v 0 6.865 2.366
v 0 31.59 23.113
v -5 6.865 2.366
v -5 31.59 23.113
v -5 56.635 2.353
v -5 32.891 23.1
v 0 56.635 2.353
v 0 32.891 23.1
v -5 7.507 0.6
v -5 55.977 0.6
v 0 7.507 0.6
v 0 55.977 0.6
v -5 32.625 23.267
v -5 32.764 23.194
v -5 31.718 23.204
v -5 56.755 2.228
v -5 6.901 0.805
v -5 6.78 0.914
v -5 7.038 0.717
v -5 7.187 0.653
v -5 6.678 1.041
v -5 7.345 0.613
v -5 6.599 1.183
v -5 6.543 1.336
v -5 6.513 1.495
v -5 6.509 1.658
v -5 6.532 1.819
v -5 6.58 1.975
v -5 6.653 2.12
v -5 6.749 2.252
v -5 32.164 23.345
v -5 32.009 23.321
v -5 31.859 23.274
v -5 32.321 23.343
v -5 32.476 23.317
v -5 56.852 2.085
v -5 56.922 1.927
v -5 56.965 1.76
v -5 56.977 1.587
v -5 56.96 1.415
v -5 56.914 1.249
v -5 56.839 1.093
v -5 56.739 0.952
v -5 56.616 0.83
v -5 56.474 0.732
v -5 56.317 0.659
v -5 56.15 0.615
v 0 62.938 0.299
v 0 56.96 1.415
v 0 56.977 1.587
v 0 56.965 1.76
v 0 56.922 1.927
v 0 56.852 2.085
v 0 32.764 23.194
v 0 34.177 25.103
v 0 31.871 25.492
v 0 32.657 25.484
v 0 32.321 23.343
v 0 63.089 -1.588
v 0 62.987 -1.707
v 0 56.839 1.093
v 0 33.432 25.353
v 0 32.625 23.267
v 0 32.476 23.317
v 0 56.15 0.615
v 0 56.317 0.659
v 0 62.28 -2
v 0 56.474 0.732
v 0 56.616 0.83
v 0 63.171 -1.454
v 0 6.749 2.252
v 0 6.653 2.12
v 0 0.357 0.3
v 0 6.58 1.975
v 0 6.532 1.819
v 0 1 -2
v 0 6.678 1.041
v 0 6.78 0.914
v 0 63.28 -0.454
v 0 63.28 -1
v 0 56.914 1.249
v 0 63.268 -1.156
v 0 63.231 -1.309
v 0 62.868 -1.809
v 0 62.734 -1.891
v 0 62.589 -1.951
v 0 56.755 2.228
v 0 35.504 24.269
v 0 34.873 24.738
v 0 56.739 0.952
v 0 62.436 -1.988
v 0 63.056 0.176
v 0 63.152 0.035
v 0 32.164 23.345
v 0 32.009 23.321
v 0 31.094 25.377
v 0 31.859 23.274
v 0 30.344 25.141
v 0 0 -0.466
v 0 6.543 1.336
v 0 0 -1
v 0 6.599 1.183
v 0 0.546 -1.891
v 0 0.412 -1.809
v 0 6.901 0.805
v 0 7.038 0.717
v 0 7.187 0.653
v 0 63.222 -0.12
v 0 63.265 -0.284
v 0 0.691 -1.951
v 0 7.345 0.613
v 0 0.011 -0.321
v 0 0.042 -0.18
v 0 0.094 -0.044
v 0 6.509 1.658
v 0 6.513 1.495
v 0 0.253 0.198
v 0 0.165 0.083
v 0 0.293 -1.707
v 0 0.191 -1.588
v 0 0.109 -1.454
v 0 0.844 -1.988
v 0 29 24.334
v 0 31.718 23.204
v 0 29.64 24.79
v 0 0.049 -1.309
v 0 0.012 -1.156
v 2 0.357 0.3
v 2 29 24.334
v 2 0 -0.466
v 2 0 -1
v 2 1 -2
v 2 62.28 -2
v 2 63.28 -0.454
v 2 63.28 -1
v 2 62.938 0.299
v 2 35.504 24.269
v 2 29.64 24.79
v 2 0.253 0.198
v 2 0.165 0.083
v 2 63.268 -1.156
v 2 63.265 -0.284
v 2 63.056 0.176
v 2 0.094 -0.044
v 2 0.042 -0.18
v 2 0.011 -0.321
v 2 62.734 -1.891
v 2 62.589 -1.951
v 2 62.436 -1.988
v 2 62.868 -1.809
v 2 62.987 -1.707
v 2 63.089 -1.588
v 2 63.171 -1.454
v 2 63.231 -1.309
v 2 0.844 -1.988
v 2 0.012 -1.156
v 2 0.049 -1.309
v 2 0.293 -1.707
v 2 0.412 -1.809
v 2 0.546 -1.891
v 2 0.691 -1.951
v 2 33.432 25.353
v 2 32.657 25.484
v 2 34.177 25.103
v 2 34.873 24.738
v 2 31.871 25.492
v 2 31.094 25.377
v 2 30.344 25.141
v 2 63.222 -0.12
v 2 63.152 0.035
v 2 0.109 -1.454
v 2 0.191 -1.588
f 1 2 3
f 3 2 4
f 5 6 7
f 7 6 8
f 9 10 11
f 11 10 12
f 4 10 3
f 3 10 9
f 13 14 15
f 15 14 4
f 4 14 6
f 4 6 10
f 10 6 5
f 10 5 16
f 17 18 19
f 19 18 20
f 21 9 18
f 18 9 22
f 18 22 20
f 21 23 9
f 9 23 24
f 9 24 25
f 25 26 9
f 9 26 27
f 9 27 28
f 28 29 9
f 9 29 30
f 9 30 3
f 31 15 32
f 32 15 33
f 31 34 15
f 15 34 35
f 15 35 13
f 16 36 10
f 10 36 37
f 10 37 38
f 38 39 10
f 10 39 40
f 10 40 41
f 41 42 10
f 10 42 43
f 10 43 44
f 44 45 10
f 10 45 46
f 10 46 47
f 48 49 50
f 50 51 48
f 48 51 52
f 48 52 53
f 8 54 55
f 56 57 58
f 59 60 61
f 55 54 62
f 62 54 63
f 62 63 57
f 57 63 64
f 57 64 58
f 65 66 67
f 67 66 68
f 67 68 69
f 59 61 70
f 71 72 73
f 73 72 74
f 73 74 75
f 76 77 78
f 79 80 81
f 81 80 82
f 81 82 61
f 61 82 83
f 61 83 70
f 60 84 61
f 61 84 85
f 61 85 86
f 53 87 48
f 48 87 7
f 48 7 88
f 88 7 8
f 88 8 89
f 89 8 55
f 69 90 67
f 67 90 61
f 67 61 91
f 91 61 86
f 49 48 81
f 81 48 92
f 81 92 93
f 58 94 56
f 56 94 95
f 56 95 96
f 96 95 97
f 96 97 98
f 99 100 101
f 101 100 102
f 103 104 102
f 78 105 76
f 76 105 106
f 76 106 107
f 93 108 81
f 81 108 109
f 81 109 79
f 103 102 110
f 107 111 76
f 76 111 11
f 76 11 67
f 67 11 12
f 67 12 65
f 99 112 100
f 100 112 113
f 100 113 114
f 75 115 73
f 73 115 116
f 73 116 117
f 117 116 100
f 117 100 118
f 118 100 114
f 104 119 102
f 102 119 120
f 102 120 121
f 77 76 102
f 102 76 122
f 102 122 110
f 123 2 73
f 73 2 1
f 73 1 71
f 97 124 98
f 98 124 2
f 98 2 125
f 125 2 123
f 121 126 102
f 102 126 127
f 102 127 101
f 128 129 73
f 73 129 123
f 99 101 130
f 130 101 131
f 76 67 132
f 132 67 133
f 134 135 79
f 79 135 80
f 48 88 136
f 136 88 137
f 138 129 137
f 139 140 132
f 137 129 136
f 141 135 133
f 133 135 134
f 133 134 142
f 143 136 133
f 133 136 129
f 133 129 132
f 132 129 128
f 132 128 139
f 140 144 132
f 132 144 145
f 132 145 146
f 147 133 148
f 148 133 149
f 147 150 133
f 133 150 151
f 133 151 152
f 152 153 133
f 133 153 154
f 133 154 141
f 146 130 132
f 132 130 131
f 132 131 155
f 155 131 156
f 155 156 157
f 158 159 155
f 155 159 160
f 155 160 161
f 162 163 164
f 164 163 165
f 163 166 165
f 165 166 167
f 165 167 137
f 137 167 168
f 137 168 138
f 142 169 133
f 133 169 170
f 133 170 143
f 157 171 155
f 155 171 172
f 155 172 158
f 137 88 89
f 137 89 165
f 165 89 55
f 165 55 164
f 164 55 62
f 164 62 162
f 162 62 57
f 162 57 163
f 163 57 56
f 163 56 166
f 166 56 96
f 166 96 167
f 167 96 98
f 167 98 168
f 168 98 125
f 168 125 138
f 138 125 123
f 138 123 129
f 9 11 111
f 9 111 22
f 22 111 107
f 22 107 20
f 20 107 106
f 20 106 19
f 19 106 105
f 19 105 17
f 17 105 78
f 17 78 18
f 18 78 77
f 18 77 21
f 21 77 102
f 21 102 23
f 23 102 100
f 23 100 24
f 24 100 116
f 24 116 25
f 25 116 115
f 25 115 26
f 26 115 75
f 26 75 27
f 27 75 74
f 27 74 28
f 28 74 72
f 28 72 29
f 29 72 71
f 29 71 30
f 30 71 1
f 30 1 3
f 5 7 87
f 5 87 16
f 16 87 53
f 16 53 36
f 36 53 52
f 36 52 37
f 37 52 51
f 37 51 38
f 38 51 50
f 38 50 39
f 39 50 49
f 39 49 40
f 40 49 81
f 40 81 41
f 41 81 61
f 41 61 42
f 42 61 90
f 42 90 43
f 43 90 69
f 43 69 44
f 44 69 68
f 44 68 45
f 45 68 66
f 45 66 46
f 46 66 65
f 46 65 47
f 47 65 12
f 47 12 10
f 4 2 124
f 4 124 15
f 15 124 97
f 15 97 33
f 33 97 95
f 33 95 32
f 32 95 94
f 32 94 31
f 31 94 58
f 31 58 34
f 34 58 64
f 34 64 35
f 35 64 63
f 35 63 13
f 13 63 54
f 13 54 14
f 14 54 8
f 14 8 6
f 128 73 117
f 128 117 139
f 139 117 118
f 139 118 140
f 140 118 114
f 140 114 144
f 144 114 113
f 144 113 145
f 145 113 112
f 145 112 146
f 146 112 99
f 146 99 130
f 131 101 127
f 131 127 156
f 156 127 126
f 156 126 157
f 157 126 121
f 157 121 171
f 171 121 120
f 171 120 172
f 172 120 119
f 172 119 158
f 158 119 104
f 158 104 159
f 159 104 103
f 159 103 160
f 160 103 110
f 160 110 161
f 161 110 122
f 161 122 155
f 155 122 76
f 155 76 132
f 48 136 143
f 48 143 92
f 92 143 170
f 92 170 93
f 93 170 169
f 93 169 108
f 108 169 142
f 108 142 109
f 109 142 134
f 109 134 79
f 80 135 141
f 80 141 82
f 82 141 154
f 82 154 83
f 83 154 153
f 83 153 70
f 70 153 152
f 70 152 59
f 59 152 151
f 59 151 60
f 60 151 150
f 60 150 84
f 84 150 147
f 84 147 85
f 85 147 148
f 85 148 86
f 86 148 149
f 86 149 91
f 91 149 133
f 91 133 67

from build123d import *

# Parameters (mm, degrees)
BOSS_EXTRUDE1_DEPTH = 5
BOSS_EXTRUDE2_DEPTH = 2
FILLET1_R           = 5
FILLET2_R           = 1
FILLET3_R           = 1


with BuildPart() as part:
    # Sketch32 → Boss-Extrude1 (new body)
    with BuildSketch(Plane(origin=(0, 0, 0), x_dir=(0, 0, -1), z_dir=(1, 0, 0))):
        Polygon((-23.663373299, 32.245792092), (-0.6, 4.759934105), (-0.6, 58.641752364), align=None)
    extrude(amount=-BOSS_EXTRUDE1_DEPTH)

    # Sketch33 → Boss-Extrude2 (add)
    with BuildSketch(Plane(origin=(0, 0, 0), x_dir=(0, 0, -1), z_dir=(1, 0, 0))):
        Polygon((0, 0), (2, 0), (2, 63.28), (0, 63.28), (-27.086136094, 32.28), align=None)
    extrude(amount=BOSS_EXTRUDE2_DEPTH)

    # Fillet1
    fillet1_edges = [part.edges().sort_by_distance(p)[0] for p in [
        (1, 32.28, 27.086136094),
    ]]
    fillet(fillet1_edges, radius=FILLET1_R)

    # Fillet2
    fillet2_edges = [part.edges().sort_by_distance(p)[0] for p in [
        (-2.5, 32.245792092, 23.663373299),
        (-2.5, 58.641752364, 0.6),
        (-2.5, 4.759934105, 0.6),
    ]]
    fillet(fillet2_edges, radius=FILLET2_R)

    # Fillet3
    fillet3_edges = [part.edges().sort_by_distance(p)[0] for p in [
        (1, 0, 0),
        (1, 0, -2),
        (1, 63.28, -2),
        (1, 63.28, 0),
    ]]
    fillet(fillet3_edges, radius=FILLET3_R)


solid = part.part
